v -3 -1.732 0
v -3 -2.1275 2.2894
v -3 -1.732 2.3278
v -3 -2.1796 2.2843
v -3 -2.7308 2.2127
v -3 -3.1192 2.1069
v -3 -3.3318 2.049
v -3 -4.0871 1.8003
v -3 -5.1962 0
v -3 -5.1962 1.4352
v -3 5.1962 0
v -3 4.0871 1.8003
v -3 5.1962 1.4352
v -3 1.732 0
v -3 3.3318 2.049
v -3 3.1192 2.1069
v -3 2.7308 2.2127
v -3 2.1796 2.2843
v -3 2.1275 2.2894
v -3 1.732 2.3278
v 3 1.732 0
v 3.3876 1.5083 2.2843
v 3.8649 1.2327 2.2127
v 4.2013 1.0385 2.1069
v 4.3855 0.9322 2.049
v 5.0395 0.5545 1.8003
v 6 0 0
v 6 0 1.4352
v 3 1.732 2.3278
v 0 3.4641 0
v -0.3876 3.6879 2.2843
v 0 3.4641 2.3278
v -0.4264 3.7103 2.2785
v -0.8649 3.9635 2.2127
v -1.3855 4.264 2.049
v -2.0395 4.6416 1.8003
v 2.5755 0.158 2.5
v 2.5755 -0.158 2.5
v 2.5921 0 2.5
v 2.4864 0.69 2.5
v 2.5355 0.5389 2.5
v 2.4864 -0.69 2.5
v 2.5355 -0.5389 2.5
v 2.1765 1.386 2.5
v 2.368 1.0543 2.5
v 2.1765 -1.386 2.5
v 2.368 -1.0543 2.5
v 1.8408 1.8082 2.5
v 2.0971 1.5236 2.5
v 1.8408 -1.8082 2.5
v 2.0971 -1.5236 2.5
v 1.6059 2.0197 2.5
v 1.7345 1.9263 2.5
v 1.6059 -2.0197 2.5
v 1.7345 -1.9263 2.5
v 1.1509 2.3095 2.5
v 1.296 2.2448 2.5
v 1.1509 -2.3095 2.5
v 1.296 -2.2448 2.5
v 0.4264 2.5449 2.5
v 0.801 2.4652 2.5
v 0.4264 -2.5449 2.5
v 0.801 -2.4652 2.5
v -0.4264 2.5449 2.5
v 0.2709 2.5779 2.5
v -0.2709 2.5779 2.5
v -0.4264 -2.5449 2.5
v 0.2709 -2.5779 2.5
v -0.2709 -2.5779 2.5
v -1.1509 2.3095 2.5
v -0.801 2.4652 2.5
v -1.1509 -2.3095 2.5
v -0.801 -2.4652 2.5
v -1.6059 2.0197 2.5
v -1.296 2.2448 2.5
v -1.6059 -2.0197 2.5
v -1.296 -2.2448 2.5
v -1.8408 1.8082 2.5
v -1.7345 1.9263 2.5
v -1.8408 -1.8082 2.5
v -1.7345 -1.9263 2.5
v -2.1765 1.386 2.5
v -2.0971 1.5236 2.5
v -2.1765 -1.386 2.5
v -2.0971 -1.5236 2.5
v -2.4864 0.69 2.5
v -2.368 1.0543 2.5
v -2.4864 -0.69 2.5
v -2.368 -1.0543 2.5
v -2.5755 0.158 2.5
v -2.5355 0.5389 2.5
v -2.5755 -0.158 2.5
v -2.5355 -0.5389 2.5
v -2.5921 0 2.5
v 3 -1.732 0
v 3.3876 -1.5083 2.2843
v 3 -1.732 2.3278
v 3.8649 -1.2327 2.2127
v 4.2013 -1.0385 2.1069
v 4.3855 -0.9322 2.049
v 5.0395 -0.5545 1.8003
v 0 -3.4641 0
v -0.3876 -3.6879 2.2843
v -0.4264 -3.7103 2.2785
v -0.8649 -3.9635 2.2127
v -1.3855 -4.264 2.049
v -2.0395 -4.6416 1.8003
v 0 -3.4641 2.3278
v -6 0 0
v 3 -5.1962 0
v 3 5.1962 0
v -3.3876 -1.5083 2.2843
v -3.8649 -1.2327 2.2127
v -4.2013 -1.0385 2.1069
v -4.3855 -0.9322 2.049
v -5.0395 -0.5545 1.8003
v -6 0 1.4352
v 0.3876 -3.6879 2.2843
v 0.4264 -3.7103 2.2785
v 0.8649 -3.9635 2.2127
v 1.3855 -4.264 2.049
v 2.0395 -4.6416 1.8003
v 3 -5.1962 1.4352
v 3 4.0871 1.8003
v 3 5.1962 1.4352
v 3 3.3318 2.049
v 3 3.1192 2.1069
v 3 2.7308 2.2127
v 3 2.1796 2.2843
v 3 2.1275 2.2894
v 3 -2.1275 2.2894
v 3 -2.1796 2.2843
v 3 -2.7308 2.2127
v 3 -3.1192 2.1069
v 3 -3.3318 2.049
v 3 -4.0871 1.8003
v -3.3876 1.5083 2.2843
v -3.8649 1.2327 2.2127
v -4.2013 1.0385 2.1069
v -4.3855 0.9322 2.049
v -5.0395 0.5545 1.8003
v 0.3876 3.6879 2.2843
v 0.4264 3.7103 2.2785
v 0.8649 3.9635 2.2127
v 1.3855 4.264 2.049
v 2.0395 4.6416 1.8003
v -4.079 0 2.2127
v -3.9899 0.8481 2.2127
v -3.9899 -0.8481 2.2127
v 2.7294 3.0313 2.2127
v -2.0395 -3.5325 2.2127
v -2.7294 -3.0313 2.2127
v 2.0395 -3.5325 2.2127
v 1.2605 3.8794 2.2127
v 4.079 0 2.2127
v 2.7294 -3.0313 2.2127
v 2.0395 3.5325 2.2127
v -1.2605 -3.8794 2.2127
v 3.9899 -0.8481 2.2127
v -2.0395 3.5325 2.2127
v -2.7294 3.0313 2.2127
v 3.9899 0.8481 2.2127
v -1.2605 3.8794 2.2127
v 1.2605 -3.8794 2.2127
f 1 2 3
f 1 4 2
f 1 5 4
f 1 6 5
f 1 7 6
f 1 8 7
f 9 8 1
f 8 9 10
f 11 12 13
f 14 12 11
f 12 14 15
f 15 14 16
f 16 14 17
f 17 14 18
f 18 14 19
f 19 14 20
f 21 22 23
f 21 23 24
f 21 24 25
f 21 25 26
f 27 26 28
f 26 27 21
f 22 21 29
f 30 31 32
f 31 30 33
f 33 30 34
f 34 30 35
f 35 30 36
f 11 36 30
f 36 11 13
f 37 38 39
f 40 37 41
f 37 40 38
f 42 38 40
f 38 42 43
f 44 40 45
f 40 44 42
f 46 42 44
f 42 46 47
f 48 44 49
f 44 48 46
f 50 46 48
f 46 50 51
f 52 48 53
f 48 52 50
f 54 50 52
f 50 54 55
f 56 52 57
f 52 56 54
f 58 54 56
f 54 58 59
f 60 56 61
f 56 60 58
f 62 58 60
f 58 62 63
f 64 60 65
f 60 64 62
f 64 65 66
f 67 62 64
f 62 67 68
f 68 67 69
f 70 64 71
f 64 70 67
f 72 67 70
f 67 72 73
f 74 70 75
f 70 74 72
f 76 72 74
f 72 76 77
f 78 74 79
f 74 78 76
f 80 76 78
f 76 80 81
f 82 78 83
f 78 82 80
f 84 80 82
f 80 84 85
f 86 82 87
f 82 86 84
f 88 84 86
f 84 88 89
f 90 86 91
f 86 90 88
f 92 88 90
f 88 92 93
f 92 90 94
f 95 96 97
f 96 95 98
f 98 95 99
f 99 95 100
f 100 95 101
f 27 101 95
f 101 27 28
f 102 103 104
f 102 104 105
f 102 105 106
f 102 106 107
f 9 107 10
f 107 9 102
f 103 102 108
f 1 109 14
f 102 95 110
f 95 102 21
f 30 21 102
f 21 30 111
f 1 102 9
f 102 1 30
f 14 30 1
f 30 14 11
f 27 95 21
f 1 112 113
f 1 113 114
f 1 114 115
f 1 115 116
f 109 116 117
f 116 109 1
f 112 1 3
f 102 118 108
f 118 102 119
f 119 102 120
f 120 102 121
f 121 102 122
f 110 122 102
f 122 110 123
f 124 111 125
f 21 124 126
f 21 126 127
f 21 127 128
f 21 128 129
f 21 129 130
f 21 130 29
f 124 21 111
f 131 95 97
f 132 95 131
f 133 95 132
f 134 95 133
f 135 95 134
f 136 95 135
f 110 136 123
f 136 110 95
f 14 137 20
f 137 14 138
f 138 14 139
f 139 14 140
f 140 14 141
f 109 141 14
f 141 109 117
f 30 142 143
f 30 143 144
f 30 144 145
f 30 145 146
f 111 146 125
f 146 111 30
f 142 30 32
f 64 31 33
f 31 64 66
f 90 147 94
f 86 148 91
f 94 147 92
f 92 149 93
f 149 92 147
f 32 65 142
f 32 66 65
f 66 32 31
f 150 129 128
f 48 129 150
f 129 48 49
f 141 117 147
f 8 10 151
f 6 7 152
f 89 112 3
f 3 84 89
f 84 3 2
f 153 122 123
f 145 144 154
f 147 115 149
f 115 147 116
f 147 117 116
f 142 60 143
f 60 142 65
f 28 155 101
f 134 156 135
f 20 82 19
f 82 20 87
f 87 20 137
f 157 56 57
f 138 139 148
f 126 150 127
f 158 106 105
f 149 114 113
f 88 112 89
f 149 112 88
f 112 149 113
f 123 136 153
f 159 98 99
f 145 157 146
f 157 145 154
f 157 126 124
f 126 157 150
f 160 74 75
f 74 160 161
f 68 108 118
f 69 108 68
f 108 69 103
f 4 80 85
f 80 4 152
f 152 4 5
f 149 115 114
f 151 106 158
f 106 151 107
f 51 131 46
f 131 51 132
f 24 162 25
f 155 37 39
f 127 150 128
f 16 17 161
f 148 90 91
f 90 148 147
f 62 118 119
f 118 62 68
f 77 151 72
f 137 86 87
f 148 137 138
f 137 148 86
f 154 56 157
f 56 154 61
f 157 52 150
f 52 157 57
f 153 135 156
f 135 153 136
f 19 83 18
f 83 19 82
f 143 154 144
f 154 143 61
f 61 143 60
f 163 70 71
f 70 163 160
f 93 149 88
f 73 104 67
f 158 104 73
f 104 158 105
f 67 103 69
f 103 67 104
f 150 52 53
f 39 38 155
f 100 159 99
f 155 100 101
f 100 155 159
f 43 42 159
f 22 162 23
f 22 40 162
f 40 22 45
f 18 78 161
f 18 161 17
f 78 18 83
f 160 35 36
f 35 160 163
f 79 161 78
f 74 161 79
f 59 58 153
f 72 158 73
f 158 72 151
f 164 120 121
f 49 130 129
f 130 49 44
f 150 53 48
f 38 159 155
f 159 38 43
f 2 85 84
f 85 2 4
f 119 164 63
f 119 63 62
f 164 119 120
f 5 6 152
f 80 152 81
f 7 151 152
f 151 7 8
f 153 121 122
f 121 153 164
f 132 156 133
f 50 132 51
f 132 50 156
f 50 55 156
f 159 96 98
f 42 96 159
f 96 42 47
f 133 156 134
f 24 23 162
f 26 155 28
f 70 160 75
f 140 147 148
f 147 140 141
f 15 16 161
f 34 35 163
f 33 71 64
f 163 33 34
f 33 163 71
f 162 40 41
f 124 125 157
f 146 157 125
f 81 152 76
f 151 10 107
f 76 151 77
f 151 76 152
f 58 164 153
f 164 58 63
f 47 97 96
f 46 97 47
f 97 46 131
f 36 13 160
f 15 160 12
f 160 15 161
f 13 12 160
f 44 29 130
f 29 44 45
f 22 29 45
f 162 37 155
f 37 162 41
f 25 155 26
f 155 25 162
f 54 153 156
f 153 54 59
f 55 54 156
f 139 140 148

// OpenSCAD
ss=1.1;

intersection() {
  union() {
    cylinder(r=6,h=2.5,$fn=3);
    rotate([0,0,180]) cylinder(r=6,h=2.5,$fn=3);
  }
  translate([0,0,-9.2]) scale([ss,ss,1]) sphere(r=12);
}
